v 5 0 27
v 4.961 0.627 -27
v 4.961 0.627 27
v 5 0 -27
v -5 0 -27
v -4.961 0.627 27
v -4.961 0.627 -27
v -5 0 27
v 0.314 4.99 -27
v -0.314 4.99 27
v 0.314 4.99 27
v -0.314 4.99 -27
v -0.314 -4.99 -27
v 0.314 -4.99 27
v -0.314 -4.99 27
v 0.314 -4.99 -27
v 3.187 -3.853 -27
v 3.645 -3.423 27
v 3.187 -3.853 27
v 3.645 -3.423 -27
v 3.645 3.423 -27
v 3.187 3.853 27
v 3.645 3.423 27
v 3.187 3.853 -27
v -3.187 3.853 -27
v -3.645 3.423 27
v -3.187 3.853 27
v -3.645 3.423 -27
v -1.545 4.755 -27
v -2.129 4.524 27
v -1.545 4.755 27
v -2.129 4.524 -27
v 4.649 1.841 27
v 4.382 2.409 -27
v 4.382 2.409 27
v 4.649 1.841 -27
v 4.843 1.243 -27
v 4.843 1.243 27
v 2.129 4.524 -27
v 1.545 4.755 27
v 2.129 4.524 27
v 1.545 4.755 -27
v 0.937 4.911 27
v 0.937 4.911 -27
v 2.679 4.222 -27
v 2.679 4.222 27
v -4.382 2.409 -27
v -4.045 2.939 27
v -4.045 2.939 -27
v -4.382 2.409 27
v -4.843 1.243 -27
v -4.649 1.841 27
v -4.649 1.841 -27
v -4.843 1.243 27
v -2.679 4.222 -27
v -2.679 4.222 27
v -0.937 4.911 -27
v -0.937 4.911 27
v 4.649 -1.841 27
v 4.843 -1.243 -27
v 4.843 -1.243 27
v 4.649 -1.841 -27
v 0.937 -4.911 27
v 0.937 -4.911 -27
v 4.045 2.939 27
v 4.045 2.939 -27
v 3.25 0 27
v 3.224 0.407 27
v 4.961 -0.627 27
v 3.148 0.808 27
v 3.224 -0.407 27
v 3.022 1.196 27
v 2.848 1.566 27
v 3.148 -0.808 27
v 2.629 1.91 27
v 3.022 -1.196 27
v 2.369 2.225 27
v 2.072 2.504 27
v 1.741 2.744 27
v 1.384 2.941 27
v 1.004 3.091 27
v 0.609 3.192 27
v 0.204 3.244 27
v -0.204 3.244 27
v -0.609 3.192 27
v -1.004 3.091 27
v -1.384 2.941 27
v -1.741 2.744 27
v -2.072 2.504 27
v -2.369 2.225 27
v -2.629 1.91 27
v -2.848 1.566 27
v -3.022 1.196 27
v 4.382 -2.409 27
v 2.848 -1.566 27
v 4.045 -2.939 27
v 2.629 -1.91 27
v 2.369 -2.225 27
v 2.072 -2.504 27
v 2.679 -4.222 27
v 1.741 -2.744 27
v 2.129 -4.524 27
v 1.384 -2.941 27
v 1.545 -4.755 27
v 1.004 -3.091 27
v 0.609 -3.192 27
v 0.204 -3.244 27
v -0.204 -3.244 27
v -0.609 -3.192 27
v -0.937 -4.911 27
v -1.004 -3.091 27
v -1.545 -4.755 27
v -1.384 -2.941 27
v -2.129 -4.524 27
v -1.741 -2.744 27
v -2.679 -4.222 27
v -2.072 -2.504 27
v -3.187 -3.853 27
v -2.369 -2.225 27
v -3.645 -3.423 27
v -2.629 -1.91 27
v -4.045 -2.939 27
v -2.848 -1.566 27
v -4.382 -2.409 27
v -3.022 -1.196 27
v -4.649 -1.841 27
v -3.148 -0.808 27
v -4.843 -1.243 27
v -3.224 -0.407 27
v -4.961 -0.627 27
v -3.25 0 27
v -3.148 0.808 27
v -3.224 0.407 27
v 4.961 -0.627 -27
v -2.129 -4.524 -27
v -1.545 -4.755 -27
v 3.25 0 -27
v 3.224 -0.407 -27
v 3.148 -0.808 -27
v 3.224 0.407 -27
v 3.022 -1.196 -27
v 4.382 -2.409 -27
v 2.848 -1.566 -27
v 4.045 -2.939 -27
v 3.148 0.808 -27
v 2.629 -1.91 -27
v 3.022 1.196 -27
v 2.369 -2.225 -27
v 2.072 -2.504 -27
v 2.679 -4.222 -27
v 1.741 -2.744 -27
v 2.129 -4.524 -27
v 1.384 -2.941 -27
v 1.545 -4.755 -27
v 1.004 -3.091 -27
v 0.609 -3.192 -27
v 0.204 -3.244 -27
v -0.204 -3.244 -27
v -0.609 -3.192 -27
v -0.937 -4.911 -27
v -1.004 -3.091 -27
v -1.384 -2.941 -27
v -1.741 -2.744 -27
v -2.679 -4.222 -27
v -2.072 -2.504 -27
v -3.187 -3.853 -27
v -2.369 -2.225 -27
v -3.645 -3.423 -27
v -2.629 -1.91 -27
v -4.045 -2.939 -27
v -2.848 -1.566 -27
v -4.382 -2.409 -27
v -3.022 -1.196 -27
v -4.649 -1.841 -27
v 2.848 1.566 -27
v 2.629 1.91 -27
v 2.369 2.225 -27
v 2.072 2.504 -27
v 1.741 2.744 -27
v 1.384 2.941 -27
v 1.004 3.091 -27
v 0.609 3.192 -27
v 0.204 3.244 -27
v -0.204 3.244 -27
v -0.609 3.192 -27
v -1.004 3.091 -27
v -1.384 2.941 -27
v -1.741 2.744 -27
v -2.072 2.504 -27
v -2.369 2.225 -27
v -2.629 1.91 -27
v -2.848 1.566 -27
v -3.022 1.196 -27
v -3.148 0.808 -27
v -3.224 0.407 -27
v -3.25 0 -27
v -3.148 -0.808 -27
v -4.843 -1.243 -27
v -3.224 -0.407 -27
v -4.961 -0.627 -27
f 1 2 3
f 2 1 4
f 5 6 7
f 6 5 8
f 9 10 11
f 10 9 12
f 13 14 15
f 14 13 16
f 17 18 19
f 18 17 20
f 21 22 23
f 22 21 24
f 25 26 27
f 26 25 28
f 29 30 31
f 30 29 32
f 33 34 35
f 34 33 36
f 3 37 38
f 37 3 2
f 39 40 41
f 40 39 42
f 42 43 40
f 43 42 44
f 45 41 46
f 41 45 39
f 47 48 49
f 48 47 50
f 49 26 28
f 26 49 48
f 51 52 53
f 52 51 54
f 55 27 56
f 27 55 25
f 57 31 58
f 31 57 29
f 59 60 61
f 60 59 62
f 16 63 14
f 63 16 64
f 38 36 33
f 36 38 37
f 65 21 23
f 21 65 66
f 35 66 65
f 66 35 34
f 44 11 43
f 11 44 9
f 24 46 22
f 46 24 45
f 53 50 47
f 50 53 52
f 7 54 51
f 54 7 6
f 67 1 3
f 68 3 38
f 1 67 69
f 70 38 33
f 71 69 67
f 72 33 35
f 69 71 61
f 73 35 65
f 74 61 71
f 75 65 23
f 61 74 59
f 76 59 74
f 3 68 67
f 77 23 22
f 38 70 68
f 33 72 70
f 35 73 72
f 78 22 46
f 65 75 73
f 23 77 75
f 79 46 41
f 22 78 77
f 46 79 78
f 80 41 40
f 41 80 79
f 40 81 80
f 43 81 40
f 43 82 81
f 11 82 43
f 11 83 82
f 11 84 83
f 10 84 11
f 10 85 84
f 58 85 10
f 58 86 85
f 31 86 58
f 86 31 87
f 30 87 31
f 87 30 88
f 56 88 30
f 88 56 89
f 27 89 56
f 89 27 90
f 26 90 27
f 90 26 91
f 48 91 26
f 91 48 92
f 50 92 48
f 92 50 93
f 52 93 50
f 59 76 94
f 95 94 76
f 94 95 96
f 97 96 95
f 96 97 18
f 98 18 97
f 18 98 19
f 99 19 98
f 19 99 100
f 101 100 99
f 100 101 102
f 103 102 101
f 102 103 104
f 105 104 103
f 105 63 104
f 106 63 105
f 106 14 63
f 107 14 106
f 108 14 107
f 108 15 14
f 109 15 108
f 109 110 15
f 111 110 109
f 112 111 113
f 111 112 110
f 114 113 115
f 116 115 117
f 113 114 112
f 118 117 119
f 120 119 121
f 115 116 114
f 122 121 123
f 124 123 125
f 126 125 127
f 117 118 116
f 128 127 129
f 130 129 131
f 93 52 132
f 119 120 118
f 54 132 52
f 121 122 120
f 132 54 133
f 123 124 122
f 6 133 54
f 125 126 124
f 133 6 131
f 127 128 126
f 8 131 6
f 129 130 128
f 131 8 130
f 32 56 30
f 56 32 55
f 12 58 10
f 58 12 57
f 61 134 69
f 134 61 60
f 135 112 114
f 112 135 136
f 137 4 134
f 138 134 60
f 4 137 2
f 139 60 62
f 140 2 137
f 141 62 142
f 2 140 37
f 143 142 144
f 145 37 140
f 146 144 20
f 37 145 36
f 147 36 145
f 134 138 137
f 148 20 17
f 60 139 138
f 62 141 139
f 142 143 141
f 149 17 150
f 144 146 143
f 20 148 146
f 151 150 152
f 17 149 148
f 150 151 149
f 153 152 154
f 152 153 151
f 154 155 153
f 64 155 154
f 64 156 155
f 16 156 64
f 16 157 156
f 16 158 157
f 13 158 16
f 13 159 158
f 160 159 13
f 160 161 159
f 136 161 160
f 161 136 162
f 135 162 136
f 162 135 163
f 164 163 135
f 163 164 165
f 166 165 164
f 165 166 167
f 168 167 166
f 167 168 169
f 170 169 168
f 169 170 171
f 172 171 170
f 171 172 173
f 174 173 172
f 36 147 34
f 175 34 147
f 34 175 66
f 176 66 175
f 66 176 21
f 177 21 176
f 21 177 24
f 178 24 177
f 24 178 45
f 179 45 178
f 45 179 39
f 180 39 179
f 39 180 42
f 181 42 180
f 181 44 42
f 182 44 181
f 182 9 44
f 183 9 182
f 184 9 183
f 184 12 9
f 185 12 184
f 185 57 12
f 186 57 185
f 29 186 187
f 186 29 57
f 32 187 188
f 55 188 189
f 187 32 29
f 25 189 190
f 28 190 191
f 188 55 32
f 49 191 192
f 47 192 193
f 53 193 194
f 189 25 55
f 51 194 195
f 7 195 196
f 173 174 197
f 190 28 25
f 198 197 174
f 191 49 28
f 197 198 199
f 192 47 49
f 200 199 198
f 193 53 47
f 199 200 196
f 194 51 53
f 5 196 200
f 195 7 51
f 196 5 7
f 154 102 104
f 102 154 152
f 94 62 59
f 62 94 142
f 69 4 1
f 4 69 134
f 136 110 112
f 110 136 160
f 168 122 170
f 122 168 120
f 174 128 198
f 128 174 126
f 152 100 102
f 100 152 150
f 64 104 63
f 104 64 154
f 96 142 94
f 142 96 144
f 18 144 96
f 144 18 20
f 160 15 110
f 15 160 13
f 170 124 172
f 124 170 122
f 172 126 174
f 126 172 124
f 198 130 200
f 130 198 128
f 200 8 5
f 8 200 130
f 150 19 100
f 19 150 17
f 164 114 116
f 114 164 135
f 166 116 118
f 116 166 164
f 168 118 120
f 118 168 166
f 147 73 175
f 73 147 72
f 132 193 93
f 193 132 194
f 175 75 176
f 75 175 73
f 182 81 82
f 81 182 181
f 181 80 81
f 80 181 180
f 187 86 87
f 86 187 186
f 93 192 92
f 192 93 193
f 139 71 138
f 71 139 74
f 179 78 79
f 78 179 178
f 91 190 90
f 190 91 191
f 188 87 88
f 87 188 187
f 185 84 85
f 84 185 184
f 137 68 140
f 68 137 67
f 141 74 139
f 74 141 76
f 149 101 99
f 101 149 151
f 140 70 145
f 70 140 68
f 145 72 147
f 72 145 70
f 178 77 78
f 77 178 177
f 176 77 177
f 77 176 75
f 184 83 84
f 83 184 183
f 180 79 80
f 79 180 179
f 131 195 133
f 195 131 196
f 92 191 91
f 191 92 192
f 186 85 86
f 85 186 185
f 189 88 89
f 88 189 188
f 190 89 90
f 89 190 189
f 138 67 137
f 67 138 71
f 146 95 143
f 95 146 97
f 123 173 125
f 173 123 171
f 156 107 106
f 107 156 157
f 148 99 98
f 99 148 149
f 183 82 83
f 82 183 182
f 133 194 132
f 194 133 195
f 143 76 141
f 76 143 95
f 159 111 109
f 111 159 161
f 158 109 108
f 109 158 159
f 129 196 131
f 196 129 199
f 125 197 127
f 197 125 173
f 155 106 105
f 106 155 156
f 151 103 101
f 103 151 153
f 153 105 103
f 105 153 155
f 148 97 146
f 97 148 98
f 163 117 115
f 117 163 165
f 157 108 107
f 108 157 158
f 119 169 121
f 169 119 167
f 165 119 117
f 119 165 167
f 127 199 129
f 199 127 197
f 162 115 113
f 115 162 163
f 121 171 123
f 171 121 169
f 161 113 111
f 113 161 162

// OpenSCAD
$fn = 50;


difference() {
	union() {
		translate(v = [0, 0, -27.0000000000]) {
			cylinder(h = 54, r = 5.0000000000);
		}
	}
	union() {
		translate(v = [0, 0, -100.0000000000]) {
			cylinder(h = 200, r = 3.2500000000);
		}
	}
}
